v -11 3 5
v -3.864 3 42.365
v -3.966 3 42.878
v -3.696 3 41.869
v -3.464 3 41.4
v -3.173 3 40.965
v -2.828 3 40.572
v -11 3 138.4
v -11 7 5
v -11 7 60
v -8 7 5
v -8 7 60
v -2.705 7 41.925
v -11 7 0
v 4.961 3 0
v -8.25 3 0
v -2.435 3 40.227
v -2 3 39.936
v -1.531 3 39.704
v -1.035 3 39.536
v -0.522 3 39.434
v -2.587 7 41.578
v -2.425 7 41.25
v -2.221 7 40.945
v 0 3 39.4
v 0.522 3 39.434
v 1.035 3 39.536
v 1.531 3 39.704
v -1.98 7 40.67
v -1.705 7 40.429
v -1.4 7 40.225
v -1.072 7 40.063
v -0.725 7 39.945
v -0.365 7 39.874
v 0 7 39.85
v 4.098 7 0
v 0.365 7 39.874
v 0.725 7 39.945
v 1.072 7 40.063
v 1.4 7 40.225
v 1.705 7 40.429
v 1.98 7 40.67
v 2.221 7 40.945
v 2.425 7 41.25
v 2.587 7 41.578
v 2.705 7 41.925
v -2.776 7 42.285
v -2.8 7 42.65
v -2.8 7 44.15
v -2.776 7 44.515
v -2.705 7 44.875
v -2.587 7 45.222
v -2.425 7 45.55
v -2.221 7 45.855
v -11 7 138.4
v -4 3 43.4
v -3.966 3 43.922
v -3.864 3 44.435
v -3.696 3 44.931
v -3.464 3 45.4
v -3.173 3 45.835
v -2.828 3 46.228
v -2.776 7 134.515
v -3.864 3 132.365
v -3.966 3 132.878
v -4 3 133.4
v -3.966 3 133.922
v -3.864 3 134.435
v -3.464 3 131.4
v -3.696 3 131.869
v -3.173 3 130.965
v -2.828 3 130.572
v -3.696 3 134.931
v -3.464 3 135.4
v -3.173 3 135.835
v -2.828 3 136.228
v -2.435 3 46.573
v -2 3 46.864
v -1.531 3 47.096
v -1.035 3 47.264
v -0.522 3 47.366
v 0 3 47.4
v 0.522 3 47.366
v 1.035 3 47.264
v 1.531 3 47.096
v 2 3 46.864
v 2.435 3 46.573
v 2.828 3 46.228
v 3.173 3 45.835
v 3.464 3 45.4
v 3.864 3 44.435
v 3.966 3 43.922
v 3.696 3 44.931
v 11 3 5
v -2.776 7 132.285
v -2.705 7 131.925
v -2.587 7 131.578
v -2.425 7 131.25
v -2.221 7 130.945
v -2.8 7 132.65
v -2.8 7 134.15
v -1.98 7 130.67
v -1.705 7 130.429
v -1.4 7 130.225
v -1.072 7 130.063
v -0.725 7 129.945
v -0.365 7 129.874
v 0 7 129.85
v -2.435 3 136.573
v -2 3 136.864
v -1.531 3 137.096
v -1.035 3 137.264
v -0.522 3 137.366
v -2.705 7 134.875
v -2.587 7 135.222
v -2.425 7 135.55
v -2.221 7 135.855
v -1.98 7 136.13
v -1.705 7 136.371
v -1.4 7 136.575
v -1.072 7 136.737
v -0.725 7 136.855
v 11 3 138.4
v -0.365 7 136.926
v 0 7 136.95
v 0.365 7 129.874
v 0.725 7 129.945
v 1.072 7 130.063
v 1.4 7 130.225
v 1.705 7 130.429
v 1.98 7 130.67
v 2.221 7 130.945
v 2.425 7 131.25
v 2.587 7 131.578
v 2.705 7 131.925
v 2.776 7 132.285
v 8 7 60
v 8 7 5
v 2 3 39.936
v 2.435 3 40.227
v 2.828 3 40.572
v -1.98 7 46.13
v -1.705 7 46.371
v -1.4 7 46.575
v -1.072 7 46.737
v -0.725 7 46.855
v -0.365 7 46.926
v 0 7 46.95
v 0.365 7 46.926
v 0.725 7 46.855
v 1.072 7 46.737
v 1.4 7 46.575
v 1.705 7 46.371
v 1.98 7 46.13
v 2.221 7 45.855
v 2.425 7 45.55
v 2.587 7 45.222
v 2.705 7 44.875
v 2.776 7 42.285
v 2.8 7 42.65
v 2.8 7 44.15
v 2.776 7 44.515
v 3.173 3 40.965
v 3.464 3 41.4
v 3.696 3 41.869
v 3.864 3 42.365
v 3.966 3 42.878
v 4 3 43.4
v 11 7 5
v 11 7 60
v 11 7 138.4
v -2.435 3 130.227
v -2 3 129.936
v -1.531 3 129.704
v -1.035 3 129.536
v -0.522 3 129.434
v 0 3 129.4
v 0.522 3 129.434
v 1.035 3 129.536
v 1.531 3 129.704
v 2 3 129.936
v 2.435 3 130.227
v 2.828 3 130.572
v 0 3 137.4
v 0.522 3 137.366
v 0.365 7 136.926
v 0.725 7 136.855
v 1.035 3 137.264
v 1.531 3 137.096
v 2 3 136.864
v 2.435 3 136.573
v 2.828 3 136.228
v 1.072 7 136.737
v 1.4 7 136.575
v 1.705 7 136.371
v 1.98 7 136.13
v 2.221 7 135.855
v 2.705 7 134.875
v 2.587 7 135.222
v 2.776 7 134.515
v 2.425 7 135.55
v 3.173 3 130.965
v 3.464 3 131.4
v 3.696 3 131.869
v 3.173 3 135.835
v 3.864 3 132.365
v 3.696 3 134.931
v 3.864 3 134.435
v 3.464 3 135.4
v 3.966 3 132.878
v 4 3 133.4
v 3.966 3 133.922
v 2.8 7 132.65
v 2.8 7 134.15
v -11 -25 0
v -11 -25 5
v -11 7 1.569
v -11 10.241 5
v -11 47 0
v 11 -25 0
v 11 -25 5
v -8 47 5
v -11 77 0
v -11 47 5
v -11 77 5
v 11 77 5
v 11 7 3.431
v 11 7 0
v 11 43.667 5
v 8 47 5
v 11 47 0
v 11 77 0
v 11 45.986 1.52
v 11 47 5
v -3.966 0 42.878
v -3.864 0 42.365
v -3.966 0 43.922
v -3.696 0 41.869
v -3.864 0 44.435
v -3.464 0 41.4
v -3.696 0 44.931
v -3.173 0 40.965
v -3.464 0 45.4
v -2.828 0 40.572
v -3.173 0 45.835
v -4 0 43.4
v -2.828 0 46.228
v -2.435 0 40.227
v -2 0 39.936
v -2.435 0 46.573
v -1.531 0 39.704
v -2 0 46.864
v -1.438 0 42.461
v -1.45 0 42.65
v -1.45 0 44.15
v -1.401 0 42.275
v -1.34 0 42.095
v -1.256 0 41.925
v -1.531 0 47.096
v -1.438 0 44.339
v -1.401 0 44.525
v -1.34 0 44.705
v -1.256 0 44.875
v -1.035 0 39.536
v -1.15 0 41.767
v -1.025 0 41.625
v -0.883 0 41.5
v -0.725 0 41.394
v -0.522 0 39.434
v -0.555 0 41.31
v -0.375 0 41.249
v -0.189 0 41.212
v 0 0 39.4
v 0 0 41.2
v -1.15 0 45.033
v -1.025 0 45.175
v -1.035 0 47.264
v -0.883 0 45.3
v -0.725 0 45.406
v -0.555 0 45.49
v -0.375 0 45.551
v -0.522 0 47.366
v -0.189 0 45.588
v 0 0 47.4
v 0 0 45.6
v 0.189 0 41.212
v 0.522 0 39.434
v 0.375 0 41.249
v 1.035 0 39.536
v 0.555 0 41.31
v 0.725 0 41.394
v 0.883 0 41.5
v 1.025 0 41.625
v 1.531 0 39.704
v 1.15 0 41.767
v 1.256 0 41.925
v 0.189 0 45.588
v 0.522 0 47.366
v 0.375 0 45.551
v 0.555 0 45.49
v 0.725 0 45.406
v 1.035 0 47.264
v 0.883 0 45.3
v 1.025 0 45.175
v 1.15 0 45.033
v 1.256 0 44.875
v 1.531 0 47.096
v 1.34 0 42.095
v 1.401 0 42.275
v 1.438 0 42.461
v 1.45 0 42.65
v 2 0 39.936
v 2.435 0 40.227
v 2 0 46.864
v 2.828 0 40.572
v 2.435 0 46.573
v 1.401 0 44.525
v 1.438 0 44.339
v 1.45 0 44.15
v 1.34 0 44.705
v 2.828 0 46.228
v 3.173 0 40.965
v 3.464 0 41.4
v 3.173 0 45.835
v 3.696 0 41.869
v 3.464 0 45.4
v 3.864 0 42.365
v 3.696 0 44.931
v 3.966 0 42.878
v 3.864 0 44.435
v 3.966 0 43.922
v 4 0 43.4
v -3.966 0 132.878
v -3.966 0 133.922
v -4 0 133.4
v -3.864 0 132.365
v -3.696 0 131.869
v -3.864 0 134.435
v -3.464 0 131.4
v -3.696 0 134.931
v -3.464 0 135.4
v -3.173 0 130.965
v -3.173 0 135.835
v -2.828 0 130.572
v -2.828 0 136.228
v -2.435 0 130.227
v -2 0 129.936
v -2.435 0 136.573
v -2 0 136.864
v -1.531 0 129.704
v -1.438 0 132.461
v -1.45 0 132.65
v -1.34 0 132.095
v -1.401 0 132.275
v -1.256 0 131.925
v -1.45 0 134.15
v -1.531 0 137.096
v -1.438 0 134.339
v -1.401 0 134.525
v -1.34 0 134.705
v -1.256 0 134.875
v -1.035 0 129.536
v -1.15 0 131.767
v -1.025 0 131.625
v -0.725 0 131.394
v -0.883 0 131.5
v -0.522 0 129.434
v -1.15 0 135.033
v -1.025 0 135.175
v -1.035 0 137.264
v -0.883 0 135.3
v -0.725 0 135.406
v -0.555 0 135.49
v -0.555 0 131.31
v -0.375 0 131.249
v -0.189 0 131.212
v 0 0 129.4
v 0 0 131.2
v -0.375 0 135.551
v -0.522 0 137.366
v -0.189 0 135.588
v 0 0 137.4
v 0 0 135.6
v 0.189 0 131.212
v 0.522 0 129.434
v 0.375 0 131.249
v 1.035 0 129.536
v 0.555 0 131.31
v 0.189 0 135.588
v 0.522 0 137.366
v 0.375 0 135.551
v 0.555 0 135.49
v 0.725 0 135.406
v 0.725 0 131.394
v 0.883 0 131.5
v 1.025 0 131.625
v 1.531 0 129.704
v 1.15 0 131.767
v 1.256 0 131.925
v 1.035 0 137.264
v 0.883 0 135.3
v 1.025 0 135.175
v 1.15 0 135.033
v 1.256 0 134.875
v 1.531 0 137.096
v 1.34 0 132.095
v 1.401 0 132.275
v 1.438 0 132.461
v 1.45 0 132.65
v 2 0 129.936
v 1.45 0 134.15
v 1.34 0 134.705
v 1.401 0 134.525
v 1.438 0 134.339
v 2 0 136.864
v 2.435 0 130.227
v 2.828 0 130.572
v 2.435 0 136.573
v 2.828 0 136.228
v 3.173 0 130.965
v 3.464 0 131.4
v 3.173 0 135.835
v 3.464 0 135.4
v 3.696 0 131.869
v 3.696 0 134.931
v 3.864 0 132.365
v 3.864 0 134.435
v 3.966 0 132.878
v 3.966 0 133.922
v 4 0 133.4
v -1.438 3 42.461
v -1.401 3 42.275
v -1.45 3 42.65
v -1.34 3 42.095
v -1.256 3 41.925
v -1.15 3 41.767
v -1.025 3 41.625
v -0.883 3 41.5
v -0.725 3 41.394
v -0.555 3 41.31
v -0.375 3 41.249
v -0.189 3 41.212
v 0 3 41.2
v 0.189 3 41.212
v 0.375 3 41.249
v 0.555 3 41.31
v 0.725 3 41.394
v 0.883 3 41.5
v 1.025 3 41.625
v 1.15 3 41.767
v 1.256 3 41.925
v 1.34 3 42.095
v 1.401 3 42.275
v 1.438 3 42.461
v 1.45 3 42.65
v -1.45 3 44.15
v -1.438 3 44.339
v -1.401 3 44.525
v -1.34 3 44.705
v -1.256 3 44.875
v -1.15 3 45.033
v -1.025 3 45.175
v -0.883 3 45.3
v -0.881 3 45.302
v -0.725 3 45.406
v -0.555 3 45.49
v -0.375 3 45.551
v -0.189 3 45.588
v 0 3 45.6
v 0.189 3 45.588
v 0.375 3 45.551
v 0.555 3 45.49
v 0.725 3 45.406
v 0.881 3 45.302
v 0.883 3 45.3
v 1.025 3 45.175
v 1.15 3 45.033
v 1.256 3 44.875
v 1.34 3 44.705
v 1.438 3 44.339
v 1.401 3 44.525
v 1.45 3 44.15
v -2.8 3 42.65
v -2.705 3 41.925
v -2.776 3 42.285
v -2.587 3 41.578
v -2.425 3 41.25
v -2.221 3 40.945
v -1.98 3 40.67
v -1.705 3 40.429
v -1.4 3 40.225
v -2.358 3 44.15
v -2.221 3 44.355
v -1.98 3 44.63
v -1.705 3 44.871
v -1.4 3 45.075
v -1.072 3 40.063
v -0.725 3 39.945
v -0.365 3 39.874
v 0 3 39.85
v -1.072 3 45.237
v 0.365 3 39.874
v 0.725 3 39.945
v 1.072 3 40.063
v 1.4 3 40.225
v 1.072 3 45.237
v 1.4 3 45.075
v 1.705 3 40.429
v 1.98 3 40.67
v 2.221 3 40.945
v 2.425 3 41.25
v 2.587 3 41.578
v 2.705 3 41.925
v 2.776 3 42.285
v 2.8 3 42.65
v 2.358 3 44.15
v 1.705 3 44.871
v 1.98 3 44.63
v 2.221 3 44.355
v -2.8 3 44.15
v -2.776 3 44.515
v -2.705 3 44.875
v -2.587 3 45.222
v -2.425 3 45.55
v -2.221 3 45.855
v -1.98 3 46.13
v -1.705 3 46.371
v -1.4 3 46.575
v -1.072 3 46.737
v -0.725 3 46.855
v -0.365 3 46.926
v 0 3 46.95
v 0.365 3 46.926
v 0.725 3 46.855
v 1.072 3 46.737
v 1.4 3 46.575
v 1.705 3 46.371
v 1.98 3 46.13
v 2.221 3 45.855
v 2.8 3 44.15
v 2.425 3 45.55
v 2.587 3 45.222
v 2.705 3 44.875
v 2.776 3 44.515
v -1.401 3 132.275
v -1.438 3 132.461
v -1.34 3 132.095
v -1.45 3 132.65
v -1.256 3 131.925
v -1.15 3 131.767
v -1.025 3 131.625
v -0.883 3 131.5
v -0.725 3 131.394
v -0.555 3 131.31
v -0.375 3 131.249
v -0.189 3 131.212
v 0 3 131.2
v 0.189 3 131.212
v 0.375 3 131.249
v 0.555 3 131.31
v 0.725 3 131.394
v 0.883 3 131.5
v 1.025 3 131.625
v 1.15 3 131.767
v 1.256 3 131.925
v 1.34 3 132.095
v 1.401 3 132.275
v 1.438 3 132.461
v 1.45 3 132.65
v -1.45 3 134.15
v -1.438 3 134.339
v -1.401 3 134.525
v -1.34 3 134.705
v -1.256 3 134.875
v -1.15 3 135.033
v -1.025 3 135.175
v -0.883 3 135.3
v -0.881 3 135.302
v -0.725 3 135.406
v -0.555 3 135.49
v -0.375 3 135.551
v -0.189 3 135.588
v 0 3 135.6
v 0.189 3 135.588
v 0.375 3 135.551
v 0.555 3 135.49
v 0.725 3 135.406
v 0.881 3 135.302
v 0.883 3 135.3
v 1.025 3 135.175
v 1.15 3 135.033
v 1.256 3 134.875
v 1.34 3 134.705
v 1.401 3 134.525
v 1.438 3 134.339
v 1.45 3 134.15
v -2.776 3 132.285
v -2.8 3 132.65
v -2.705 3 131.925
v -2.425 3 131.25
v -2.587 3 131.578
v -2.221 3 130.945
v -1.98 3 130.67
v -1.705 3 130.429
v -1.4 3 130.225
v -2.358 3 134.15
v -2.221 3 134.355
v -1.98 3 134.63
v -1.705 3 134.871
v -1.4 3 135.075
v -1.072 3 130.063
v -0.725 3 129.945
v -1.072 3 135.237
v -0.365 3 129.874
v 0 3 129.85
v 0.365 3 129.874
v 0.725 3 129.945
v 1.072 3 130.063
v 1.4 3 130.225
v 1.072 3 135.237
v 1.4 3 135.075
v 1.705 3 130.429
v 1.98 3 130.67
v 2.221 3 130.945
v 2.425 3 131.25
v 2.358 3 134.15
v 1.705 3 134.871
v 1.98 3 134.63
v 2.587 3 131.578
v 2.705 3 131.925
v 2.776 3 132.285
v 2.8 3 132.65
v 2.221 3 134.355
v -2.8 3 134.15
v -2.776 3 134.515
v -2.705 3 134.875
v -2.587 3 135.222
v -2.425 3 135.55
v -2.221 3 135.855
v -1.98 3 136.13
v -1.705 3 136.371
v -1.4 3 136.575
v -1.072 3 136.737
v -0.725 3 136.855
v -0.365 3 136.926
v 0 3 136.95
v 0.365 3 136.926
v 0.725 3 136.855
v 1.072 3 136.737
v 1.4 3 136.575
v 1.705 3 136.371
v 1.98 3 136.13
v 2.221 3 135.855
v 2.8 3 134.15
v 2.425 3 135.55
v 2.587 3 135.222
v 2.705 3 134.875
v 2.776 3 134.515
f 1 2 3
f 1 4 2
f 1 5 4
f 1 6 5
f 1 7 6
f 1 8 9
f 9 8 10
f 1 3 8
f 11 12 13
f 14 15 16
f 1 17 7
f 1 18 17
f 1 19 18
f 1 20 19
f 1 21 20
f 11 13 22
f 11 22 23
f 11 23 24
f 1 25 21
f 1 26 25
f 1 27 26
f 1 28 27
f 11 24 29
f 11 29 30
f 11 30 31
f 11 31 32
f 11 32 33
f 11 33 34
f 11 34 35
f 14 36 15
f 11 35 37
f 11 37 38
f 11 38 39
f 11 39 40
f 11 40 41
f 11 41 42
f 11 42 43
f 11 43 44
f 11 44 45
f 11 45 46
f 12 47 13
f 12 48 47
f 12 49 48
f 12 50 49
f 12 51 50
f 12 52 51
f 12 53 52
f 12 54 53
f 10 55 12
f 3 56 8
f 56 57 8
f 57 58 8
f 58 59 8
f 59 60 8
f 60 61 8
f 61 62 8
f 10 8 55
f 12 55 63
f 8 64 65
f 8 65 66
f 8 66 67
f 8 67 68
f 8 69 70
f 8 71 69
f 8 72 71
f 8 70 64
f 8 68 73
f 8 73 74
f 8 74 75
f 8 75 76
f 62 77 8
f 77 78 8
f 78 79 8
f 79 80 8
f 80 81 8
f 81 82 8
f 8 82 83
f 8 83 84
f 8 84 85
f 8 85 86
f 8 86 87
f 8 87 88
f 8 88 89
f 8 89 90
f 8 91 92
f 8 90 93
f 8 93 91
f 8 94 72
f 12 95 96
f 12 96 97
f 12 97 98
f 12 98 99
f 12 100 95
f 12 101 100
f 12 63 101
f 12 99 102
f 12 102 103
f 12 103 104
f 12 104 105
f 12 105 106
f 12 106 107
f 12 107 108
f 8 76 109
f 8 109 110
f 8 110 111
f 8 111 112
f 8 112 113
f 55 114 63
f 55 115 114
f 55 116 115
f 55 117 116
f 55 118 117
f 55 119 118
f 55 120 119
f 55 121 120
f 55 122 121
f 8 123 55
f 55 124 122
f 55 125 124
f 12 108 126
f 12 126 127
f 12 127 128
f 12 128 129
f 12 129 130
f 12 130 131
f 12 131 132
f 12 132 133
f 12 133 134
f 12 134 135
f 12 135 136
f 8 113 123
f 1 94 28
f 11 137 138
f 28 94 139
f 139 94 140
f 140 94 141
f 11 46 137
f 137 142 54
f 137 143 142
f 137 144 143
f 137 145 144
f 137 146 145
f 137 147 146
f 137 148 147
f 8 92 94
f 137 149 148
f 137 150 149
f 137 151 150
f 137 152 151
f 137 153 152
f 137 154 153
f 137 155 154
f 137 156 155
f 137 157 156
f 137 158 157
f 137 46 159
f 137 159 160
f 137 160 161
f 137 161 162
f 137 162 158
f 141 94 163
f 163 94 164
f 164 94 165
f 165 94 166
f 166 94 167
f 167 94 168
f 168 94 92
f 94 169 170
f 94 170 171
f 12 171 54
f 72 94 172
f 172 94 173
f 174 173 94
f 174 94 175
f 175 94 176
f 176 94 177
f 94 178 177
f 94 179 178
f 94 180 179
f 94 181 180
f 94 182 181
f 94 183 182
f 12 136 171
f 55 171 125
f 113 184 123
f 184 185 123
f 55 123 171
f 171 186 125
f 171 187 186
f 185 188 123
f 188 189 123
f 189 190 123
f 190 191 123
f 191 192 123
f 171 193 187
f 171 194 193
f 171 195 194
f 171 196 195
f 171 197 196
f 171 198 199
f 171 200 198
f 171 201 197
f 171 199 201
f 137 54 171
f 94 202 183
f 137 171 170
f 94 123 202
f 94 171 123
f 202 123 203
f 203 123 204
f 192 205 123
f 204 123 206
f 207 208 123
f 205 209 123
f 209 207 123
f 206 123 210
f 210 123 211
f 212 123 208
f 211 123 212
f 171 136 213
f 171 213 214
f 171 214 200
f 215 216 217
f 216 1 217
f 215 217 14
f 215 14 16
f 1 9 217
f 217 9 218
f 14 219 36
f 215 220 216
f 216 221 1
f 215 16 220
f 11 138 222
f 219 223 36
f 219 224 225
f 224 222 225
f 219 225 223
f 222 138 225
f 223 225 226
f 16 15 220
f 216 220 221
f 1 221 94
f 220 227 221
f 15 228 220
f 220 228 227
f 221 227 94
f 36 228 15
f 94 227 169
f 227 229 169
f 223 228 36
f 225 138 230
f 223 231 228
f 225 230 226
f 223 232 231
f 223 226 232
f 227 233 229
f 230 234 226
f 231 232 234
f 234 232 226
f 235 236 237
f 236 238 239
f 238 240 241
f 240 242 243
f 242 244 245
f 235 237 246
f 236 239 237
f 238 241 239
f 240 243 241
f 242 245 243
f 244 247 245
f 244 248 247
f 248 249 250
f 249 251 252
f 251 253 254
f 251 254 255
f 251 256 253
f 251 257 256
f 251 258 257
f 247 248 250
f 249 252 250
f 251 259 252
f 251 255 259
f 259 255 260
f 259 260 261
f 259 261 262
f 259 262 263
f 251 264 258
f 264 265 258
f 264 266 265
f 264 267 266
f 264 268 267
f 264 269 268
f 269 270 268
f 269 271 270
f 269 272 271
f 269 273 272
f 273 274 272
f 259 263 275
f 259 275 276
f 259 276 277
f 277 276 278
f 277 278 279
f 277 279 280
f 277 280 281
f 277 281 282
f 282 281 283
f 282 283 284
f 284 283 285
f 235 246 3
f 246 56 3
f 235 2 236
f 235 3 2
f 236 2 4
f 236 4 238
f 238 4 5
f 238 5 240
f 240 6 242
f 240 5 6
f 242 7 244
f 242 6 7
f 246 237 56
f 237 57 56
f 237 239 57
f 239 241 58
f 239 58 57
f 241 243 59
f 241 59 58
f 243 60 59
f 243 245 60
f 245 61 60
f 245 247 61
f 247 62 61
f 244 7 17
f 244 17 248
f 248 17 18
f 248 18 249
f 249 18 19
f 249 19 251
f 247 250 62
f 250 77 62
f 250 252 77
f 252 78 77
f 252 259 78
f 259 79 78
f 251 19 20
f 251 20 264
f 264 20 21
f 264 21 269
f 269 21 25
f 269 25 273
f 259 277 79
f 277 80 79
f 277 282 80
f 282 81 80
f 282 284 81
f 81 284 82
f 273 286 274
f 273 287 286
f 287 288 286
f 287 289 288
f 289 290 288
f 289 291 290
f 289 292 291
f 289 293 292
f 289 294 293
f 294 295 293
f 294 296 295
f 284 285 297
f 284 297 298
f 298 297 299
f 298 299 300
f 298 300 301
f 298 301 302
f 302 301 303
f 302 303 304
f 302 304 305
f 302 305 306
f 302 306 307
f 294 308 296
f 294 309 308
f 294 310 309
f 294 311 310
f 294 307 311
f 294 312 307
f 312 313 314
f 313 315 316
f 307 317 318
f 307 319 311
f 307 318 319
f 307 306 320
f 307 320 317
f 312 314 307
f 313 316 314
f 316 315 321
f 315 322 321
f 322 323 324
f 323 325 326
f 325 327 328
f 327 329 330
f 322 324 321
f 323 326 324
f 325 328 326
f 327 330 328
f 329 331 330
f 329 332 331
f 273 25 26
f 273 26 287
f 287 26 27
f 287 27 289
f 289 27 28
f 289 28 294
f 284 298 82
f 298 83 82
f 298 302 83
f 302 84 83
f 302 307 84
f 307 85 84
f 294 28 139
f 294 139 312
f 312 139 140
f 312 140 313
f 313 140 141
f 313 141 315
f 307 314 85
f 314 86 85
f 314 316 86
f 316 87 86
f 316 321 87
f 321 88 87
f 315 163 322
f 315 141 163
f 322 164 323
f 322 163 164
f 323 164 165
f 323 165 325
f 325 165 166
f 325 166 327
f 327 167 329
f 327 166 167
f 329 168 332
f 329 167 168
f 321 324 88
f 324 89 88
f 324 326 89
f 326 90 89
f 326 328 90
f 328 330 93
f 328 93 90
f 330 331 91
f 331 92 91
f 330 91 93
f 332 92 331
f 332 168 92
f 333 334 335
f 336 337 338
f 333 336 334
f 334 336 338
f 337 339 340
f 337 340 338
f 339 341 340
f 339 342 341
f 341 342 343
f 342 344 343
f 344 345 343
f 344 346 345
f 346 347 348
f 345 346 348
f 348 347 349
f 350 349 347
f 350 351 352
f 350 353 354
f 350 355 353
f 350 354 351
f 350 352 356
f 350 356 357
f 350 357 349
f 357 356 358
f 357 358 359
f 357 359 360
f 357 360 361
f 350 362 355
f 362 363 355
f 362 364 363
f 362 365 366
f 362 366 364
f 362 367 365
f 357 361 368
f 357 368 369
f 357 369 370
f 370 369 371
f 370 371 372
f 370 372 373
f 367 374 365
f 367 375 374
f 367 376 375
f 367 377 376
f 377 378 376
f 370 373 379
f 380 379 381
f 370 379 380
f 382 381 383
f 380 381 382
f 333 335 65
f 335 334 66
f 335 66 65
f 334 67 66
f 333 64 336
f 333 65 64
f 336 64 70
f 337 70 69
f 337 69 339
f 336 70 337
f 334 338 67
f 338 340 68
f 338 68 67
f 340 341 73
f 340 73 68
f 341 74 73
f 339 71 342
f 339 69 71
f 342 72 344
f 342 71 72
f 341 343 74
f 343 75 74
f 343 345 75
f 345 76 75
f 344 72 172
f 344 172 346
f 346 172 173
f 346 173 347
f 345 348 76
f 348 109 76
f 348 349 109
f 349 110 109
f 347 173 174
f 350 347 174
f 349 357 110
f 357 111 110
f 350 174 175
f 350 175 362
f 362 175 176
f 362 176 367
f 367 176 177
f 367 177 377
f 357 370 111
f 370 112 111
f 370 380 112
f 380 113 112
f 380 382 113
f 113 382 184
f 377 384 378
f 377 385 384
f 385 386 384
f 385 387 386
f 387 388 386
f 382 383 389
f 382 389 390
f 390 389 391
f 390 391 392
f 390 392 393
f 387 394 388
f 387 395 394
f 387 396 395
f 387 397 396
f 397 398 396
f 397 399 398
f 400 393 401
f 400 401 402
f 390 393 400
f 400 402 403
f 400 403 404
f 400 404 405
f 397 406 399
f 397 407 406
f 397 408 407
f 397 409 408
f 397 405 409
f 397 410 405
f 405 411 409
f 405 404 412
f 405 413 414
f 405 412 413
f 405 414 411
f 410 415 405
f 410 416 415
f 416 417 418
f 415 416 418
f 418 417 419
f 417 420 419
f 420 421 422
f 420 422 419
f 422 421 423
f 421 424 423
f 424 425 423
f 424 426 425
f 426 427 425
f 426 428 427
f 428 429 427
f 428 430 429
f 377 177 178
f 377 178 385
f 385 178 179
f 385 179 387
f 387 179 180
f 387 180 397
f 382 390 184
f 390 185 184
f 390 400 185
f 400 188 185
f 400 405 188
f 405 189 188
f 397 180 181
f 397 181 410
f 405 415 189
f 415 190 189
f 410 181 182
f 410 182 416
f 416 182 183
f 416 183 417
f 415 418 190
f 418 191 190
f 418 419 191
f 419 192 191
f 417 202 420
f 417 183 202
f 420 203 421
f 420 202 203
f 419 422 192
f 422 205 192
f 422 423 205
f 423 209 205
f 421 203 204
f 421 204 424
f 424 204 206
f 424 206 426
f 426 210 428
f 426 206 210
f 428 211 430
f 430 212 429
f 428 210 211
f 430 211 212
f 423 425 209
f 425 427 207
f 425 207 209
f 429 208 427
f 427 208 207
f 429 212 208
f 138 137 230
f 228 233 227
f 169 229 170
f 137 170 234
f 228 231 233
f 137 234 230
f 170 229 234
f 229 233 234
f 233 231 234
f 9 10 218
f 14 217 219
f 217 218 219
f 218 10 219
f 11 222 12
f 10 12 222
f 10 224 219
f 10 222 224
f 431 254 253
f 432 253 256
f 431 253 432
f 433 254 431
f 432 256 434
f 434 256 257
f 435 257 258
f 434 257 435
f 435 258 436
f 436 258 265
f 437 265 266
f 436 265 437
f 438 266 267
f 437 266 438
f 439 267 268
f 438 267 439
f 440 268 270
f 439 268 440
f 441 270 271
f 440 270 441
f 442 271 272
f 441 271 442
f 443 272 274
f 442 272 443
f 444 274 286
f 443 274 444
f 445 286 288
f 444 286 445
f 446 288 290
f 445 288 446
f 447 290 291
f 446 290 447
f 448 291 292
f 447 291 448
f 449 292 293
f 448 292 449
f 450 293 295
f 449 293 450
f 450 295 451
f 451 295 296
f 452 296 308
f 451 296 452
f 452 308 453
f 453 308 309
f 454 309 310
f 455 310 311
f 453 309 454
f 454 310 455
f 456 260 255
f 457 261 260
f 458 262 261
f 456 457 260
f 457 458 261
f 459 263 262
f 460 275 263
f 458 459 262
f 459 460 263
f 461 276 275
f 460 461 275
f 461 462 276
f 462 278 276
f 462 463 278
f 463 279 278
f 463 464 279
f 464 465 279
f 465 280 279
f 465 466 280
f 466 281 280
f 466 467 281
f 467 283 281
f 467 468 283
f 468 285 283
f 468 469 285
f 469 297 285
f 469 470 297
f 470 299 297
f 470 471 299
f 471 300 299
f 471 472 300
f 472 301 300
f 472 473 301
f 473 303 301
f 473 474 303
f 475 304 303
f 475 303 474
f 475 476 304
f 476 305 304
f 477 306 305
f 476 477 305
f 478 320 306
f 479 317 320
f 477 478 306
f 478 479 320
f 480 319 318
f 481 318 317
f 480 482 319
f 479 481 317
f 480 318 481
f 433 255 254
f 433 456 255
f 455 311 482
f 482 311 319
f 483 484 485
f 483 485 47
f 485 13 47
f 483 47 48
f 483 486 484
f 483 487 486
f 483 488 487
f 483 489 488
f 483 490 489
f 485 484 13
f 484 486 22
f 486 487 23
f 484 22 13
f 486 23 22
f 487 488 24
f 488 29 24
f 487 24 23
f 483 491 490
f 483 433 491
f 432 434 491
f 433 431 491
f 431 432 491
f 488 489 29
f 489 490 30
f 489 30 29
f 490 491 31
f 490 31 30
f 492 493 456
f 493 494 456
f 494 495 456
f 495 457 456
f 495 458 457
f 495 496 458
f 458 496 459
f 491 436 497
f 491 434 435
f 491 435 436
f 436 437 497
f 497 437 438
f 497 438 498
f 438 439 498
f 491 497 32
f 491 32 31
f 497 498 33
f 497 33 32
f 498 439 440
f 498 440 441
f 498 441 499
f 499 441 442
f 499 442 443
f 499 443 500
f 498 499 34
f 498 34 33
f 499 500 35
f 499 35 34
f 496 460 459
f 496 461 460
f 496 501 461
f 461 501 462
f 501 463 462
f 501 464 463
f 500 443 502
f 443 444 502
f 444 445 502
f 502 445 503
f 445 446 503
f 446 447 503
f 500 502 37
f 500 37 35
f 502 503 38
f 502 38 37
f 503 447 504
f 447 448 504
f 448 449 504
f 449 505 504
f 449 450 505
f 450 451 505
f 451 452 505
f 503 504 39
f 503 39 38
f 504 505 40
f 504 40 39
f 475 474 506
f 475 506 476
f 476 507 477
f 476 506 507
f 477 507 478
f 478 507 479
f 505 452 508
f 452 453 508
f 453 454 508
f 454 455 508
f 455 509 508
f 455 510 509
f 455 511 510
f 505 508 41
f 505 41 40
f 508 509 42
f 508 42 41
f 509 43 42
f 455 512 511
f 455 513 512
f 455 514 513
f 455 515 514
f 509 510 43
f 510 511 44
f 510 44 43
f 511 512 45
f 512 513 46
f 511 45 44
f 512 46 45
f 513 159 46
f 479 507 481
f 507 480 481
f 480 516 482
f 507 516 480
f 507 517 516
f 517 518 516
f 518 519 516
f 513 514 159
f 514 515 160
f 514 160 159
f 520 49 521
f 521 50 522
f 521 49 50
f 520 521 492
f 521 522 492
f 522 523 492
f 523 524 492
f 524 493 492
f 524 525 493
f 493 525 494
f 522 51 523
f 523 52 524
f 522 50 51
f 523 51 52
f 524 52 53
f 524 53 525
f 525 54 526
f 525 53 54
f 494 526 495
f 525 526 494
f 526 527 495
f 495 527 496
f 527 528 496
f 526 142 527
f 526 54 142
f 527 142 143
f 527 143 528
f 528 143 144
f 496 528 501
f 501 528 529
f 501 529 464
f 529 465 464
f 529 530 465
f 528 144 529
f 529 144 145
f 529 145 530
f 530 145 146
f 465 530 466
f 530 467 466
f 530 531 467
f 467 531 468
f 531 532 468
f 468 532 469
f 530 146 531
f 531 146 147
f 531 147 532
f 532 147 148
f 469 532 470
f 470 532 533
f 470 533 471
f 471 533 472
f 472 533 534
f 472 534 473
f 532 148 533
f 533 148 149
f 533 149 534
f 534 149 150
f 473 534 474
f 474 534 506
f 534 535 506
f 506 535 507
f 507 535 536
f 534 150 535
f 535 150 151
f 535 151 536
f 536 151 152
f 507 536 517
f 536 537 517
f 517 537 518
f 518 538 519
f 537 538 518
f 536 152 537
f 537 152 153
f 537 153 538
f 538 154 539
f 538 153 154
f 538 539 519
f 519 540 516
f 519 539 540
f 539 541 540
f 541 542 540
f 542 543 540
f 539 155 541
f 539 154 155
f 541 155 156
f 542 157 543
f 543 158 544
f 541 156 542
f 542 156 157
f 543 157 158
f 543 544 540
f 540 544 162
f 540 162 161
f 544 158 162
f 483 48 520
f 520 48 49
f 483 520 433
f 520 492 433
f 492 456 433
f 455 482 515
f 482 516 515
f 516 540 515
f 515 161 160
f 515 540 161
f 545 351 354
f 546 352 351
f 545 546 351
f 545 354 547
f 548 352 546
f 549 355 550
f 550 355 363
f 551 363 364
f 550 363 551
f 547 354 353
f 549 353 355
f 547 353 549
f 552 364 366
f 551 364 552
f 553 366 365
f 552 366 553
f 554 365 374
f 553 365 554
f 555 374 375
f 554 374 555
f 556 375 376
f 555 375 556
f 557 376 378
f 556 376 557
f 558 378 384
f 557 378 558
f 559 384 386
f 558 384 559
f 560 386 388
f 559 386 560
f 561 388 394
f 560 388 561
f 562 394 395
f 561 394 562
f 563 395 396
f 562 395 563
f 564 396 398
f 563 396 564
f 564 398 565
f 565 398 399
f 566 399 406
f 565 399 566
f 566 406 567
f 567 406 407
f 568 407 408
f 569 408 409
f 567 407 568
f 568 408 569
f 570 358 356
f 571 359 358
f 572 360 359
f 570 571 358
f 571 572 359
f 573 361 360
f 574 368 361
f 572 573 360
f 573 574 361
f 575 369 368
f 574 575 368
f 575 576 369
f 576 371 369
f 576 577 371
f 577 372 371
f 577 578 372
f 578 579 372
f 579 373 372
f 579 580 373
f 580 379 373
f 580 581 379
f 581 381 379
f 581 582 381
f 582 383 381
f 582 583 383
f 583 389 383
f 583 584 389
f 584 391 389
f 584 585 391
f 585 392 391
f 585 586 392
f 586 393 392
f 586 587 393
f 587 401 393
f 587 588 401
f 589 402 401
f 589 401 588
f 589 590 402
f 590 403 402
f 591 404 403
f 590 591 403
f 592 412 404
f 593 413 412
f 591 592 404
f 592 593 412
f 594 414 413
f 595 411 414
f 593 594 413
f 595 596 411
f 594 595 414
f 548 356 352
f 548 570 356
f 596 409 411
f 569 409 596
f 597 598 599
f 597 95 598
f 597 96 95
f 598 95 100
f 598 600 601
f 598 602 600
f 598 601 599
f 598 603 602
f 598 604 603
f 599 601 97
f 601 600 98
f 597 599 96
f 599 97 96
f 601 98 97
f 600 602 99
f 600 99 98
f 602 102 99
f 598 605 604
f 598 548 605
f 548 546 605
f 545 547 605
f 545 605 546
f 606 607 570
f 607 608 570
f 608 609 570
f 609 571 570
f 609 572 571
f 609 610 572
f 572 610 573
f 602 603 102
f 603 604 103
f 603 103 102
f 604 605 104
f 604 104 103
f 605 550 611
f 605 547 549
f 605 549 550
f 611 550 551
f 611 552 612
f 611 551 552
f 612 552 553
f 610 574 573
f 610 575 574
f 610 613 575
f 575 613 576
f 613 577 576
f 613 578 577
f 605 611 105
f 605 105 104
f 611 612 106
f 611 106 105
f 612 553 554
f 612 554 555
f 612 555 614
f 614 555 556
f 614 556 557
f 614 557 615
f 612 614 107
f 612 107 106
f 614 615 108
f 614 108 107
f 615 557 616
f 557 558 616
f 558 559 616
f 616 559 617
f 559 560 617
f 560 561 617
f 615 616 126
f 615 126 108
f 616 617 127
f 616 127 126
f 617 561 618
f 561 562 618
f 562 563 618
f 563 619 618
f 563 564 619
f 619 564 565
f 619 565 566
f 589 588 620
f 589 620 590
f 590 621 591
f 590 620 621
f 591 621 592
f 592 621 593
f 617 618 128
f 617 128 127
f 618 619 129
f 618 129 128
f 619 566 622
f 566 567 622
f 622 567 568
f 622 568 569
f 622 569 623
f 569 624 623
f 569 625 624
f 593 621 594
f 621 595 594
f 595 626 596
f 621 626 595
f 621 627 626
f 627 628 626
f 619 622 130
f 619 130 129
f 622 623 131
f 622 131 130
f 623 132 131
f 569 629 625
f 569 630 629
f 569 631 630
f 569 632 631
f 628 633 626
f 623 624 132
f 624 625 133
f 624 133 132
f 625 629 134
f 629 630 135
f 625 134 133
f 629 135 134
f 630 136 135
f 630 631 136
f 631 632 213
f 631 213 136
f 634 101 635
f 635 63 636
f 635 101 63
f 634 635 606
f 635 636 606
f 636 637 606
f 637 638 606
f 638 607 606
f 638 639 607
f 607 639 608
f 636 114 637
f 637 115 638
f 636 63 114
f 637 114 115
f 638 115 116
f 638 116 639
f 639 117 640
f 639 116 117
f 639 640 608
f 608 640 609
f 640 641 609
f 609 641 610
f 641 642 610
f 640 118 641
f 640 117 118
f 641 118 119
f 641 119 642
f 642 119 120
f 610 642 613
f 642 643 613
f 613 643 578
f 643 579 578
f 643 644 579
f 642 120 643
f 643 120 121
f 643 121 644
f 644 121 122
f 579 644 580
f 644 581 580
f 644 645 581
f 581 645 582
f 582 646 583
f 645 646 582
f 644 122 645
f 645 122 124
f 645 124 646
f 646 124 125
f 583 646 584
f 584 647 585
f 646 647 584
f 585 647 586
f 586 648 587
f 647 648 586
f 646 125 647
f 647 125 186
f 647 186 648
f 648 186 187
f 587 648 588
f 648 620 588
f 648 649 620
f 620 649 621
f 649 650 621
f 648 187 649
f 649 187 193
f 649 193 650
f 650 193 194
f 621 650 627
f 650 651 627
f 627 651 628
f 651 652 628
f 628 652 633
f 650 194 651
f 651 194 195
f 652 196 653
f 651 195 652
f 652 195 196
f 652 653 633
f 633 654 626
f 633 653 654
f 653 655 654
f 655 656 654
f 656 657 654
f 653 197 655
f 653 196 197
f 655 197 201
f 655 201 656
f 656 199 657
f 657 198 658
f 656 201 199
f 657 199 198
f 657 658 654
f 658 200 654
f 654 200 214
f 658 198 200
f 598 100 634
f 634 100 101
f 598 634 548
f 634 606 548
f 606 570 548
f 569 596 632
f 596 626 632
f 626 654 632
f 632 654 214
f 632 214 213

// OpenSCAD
// L-bracket stand for DFRobot 7" 800x480 DSI capacitive touchscreen (DFR0678 V1.0)
// Print TWO of these. They screw into the OUTER mounting holes (155 x 90 mm,
// M2.5) at the left and right edges, leaving the centre (Pi on the 58 x 49
// inner holes) completely free so all Pi I/O stays accessible.
//
// Orientation: print lying on its side (the "side" face flat on the bed)
// for the strongest layer direction. See README.

/* [Display] */
hole_spacing_v   = 90;   // vertical distance between outer holes (mm) - per DFRobot drawing
hole_edge_offset = 5;    // bottom hole centre to bottom edge of board (mm)
slot             = 1.5;  // holes are elongated vertically by this much for tolerance
screw_d          = 2.9;  // M2.5 clearance hole
head_d           = 5.6;  // counterbore for screw head (DK 4.9)
screw_grip       = 3;    // material left under the screw head (mm) -> 6 mm screw = 3 mm thread engagement

/* [Bracket] */
boss_h      = 3;    // standoff boss height between board and plate (clears back components)
boss_d      = 8;
plate_t     = 4;    // upright thickness
plate_w     = 22;   // upright width (= foot_w so the whole side is flat for printing on its side)
foot_t      = 5;    // foot thickness
foot_w      = 22;   // foot width (side to side)
foot_back   = 70;   // foot length behind the board
foot_front  = 25;   // foot length in front of the board's back plane (under the screen)
clearance   = 33.4; // gap between foot top and bottom edge of the board (8 mm + 1 inch)
top_margin  = 5;    // upright extends this far above the top hole (5 = flush with top of board)
gusset_t    = 3;
gusset_h    = 60;
gusset_len  = 40;

$fn = 48;

board_bottom = foot_t + clearance;
z1 = board_bottom + hole_edge_offset;
z2 = z1 + hole_spacing_v;
plate_h = z2 + top_margin;
y_plate = boss_h;                 // board back plane is y = 0, +y goes behind the display

module bracket() {
  difference() {
    union() {
      // upright
      translate([-plate_w/2, y_plate, 0]) cube([plate_w, plate_t, plate_h]);
      // foot
      translate([-foot_w/2, -foot_front, 0]) cube([foot_w, foot_front + y_plate + plate_t + foot_back, foot_t]);
      // bosses
      for (z = [z1, z2]) translate([0, 0, z]) rotate([-90, 0, 0]) cylinder(d = boss_d, h = y_plate + 0.01);
      // twin gussets on the edges (screwdriver fits between them)
      for (s = [-1, 1])
        translate([s * (plate_w/2 - gusset_t/2) - gusset_t/2, y_plate + plate_t, 0])
          rotate([90, 0, 90]) linear_extrude(gusset_t)
            polygon([[0, 0], [gusset_len, 0], [gusset_len, foot_t], [0, gusset_h]]);
    }
    for (z = [z1, z2]) {
      hull() for (dz = [-slot/2, slot/2]) translate([0, -1, z + dz]) rotate([-90, 0, 0]) cylinder(d = screw_d, h = 50);
      hull() for (dz = [-slot/2, slot/2]) translate([0, screw_grip, z + dz]) rotate([-90, 0, 0]) cylinder(d = head_d, h = 50); // counterbore from behind
    }
  }
}

bracket();
